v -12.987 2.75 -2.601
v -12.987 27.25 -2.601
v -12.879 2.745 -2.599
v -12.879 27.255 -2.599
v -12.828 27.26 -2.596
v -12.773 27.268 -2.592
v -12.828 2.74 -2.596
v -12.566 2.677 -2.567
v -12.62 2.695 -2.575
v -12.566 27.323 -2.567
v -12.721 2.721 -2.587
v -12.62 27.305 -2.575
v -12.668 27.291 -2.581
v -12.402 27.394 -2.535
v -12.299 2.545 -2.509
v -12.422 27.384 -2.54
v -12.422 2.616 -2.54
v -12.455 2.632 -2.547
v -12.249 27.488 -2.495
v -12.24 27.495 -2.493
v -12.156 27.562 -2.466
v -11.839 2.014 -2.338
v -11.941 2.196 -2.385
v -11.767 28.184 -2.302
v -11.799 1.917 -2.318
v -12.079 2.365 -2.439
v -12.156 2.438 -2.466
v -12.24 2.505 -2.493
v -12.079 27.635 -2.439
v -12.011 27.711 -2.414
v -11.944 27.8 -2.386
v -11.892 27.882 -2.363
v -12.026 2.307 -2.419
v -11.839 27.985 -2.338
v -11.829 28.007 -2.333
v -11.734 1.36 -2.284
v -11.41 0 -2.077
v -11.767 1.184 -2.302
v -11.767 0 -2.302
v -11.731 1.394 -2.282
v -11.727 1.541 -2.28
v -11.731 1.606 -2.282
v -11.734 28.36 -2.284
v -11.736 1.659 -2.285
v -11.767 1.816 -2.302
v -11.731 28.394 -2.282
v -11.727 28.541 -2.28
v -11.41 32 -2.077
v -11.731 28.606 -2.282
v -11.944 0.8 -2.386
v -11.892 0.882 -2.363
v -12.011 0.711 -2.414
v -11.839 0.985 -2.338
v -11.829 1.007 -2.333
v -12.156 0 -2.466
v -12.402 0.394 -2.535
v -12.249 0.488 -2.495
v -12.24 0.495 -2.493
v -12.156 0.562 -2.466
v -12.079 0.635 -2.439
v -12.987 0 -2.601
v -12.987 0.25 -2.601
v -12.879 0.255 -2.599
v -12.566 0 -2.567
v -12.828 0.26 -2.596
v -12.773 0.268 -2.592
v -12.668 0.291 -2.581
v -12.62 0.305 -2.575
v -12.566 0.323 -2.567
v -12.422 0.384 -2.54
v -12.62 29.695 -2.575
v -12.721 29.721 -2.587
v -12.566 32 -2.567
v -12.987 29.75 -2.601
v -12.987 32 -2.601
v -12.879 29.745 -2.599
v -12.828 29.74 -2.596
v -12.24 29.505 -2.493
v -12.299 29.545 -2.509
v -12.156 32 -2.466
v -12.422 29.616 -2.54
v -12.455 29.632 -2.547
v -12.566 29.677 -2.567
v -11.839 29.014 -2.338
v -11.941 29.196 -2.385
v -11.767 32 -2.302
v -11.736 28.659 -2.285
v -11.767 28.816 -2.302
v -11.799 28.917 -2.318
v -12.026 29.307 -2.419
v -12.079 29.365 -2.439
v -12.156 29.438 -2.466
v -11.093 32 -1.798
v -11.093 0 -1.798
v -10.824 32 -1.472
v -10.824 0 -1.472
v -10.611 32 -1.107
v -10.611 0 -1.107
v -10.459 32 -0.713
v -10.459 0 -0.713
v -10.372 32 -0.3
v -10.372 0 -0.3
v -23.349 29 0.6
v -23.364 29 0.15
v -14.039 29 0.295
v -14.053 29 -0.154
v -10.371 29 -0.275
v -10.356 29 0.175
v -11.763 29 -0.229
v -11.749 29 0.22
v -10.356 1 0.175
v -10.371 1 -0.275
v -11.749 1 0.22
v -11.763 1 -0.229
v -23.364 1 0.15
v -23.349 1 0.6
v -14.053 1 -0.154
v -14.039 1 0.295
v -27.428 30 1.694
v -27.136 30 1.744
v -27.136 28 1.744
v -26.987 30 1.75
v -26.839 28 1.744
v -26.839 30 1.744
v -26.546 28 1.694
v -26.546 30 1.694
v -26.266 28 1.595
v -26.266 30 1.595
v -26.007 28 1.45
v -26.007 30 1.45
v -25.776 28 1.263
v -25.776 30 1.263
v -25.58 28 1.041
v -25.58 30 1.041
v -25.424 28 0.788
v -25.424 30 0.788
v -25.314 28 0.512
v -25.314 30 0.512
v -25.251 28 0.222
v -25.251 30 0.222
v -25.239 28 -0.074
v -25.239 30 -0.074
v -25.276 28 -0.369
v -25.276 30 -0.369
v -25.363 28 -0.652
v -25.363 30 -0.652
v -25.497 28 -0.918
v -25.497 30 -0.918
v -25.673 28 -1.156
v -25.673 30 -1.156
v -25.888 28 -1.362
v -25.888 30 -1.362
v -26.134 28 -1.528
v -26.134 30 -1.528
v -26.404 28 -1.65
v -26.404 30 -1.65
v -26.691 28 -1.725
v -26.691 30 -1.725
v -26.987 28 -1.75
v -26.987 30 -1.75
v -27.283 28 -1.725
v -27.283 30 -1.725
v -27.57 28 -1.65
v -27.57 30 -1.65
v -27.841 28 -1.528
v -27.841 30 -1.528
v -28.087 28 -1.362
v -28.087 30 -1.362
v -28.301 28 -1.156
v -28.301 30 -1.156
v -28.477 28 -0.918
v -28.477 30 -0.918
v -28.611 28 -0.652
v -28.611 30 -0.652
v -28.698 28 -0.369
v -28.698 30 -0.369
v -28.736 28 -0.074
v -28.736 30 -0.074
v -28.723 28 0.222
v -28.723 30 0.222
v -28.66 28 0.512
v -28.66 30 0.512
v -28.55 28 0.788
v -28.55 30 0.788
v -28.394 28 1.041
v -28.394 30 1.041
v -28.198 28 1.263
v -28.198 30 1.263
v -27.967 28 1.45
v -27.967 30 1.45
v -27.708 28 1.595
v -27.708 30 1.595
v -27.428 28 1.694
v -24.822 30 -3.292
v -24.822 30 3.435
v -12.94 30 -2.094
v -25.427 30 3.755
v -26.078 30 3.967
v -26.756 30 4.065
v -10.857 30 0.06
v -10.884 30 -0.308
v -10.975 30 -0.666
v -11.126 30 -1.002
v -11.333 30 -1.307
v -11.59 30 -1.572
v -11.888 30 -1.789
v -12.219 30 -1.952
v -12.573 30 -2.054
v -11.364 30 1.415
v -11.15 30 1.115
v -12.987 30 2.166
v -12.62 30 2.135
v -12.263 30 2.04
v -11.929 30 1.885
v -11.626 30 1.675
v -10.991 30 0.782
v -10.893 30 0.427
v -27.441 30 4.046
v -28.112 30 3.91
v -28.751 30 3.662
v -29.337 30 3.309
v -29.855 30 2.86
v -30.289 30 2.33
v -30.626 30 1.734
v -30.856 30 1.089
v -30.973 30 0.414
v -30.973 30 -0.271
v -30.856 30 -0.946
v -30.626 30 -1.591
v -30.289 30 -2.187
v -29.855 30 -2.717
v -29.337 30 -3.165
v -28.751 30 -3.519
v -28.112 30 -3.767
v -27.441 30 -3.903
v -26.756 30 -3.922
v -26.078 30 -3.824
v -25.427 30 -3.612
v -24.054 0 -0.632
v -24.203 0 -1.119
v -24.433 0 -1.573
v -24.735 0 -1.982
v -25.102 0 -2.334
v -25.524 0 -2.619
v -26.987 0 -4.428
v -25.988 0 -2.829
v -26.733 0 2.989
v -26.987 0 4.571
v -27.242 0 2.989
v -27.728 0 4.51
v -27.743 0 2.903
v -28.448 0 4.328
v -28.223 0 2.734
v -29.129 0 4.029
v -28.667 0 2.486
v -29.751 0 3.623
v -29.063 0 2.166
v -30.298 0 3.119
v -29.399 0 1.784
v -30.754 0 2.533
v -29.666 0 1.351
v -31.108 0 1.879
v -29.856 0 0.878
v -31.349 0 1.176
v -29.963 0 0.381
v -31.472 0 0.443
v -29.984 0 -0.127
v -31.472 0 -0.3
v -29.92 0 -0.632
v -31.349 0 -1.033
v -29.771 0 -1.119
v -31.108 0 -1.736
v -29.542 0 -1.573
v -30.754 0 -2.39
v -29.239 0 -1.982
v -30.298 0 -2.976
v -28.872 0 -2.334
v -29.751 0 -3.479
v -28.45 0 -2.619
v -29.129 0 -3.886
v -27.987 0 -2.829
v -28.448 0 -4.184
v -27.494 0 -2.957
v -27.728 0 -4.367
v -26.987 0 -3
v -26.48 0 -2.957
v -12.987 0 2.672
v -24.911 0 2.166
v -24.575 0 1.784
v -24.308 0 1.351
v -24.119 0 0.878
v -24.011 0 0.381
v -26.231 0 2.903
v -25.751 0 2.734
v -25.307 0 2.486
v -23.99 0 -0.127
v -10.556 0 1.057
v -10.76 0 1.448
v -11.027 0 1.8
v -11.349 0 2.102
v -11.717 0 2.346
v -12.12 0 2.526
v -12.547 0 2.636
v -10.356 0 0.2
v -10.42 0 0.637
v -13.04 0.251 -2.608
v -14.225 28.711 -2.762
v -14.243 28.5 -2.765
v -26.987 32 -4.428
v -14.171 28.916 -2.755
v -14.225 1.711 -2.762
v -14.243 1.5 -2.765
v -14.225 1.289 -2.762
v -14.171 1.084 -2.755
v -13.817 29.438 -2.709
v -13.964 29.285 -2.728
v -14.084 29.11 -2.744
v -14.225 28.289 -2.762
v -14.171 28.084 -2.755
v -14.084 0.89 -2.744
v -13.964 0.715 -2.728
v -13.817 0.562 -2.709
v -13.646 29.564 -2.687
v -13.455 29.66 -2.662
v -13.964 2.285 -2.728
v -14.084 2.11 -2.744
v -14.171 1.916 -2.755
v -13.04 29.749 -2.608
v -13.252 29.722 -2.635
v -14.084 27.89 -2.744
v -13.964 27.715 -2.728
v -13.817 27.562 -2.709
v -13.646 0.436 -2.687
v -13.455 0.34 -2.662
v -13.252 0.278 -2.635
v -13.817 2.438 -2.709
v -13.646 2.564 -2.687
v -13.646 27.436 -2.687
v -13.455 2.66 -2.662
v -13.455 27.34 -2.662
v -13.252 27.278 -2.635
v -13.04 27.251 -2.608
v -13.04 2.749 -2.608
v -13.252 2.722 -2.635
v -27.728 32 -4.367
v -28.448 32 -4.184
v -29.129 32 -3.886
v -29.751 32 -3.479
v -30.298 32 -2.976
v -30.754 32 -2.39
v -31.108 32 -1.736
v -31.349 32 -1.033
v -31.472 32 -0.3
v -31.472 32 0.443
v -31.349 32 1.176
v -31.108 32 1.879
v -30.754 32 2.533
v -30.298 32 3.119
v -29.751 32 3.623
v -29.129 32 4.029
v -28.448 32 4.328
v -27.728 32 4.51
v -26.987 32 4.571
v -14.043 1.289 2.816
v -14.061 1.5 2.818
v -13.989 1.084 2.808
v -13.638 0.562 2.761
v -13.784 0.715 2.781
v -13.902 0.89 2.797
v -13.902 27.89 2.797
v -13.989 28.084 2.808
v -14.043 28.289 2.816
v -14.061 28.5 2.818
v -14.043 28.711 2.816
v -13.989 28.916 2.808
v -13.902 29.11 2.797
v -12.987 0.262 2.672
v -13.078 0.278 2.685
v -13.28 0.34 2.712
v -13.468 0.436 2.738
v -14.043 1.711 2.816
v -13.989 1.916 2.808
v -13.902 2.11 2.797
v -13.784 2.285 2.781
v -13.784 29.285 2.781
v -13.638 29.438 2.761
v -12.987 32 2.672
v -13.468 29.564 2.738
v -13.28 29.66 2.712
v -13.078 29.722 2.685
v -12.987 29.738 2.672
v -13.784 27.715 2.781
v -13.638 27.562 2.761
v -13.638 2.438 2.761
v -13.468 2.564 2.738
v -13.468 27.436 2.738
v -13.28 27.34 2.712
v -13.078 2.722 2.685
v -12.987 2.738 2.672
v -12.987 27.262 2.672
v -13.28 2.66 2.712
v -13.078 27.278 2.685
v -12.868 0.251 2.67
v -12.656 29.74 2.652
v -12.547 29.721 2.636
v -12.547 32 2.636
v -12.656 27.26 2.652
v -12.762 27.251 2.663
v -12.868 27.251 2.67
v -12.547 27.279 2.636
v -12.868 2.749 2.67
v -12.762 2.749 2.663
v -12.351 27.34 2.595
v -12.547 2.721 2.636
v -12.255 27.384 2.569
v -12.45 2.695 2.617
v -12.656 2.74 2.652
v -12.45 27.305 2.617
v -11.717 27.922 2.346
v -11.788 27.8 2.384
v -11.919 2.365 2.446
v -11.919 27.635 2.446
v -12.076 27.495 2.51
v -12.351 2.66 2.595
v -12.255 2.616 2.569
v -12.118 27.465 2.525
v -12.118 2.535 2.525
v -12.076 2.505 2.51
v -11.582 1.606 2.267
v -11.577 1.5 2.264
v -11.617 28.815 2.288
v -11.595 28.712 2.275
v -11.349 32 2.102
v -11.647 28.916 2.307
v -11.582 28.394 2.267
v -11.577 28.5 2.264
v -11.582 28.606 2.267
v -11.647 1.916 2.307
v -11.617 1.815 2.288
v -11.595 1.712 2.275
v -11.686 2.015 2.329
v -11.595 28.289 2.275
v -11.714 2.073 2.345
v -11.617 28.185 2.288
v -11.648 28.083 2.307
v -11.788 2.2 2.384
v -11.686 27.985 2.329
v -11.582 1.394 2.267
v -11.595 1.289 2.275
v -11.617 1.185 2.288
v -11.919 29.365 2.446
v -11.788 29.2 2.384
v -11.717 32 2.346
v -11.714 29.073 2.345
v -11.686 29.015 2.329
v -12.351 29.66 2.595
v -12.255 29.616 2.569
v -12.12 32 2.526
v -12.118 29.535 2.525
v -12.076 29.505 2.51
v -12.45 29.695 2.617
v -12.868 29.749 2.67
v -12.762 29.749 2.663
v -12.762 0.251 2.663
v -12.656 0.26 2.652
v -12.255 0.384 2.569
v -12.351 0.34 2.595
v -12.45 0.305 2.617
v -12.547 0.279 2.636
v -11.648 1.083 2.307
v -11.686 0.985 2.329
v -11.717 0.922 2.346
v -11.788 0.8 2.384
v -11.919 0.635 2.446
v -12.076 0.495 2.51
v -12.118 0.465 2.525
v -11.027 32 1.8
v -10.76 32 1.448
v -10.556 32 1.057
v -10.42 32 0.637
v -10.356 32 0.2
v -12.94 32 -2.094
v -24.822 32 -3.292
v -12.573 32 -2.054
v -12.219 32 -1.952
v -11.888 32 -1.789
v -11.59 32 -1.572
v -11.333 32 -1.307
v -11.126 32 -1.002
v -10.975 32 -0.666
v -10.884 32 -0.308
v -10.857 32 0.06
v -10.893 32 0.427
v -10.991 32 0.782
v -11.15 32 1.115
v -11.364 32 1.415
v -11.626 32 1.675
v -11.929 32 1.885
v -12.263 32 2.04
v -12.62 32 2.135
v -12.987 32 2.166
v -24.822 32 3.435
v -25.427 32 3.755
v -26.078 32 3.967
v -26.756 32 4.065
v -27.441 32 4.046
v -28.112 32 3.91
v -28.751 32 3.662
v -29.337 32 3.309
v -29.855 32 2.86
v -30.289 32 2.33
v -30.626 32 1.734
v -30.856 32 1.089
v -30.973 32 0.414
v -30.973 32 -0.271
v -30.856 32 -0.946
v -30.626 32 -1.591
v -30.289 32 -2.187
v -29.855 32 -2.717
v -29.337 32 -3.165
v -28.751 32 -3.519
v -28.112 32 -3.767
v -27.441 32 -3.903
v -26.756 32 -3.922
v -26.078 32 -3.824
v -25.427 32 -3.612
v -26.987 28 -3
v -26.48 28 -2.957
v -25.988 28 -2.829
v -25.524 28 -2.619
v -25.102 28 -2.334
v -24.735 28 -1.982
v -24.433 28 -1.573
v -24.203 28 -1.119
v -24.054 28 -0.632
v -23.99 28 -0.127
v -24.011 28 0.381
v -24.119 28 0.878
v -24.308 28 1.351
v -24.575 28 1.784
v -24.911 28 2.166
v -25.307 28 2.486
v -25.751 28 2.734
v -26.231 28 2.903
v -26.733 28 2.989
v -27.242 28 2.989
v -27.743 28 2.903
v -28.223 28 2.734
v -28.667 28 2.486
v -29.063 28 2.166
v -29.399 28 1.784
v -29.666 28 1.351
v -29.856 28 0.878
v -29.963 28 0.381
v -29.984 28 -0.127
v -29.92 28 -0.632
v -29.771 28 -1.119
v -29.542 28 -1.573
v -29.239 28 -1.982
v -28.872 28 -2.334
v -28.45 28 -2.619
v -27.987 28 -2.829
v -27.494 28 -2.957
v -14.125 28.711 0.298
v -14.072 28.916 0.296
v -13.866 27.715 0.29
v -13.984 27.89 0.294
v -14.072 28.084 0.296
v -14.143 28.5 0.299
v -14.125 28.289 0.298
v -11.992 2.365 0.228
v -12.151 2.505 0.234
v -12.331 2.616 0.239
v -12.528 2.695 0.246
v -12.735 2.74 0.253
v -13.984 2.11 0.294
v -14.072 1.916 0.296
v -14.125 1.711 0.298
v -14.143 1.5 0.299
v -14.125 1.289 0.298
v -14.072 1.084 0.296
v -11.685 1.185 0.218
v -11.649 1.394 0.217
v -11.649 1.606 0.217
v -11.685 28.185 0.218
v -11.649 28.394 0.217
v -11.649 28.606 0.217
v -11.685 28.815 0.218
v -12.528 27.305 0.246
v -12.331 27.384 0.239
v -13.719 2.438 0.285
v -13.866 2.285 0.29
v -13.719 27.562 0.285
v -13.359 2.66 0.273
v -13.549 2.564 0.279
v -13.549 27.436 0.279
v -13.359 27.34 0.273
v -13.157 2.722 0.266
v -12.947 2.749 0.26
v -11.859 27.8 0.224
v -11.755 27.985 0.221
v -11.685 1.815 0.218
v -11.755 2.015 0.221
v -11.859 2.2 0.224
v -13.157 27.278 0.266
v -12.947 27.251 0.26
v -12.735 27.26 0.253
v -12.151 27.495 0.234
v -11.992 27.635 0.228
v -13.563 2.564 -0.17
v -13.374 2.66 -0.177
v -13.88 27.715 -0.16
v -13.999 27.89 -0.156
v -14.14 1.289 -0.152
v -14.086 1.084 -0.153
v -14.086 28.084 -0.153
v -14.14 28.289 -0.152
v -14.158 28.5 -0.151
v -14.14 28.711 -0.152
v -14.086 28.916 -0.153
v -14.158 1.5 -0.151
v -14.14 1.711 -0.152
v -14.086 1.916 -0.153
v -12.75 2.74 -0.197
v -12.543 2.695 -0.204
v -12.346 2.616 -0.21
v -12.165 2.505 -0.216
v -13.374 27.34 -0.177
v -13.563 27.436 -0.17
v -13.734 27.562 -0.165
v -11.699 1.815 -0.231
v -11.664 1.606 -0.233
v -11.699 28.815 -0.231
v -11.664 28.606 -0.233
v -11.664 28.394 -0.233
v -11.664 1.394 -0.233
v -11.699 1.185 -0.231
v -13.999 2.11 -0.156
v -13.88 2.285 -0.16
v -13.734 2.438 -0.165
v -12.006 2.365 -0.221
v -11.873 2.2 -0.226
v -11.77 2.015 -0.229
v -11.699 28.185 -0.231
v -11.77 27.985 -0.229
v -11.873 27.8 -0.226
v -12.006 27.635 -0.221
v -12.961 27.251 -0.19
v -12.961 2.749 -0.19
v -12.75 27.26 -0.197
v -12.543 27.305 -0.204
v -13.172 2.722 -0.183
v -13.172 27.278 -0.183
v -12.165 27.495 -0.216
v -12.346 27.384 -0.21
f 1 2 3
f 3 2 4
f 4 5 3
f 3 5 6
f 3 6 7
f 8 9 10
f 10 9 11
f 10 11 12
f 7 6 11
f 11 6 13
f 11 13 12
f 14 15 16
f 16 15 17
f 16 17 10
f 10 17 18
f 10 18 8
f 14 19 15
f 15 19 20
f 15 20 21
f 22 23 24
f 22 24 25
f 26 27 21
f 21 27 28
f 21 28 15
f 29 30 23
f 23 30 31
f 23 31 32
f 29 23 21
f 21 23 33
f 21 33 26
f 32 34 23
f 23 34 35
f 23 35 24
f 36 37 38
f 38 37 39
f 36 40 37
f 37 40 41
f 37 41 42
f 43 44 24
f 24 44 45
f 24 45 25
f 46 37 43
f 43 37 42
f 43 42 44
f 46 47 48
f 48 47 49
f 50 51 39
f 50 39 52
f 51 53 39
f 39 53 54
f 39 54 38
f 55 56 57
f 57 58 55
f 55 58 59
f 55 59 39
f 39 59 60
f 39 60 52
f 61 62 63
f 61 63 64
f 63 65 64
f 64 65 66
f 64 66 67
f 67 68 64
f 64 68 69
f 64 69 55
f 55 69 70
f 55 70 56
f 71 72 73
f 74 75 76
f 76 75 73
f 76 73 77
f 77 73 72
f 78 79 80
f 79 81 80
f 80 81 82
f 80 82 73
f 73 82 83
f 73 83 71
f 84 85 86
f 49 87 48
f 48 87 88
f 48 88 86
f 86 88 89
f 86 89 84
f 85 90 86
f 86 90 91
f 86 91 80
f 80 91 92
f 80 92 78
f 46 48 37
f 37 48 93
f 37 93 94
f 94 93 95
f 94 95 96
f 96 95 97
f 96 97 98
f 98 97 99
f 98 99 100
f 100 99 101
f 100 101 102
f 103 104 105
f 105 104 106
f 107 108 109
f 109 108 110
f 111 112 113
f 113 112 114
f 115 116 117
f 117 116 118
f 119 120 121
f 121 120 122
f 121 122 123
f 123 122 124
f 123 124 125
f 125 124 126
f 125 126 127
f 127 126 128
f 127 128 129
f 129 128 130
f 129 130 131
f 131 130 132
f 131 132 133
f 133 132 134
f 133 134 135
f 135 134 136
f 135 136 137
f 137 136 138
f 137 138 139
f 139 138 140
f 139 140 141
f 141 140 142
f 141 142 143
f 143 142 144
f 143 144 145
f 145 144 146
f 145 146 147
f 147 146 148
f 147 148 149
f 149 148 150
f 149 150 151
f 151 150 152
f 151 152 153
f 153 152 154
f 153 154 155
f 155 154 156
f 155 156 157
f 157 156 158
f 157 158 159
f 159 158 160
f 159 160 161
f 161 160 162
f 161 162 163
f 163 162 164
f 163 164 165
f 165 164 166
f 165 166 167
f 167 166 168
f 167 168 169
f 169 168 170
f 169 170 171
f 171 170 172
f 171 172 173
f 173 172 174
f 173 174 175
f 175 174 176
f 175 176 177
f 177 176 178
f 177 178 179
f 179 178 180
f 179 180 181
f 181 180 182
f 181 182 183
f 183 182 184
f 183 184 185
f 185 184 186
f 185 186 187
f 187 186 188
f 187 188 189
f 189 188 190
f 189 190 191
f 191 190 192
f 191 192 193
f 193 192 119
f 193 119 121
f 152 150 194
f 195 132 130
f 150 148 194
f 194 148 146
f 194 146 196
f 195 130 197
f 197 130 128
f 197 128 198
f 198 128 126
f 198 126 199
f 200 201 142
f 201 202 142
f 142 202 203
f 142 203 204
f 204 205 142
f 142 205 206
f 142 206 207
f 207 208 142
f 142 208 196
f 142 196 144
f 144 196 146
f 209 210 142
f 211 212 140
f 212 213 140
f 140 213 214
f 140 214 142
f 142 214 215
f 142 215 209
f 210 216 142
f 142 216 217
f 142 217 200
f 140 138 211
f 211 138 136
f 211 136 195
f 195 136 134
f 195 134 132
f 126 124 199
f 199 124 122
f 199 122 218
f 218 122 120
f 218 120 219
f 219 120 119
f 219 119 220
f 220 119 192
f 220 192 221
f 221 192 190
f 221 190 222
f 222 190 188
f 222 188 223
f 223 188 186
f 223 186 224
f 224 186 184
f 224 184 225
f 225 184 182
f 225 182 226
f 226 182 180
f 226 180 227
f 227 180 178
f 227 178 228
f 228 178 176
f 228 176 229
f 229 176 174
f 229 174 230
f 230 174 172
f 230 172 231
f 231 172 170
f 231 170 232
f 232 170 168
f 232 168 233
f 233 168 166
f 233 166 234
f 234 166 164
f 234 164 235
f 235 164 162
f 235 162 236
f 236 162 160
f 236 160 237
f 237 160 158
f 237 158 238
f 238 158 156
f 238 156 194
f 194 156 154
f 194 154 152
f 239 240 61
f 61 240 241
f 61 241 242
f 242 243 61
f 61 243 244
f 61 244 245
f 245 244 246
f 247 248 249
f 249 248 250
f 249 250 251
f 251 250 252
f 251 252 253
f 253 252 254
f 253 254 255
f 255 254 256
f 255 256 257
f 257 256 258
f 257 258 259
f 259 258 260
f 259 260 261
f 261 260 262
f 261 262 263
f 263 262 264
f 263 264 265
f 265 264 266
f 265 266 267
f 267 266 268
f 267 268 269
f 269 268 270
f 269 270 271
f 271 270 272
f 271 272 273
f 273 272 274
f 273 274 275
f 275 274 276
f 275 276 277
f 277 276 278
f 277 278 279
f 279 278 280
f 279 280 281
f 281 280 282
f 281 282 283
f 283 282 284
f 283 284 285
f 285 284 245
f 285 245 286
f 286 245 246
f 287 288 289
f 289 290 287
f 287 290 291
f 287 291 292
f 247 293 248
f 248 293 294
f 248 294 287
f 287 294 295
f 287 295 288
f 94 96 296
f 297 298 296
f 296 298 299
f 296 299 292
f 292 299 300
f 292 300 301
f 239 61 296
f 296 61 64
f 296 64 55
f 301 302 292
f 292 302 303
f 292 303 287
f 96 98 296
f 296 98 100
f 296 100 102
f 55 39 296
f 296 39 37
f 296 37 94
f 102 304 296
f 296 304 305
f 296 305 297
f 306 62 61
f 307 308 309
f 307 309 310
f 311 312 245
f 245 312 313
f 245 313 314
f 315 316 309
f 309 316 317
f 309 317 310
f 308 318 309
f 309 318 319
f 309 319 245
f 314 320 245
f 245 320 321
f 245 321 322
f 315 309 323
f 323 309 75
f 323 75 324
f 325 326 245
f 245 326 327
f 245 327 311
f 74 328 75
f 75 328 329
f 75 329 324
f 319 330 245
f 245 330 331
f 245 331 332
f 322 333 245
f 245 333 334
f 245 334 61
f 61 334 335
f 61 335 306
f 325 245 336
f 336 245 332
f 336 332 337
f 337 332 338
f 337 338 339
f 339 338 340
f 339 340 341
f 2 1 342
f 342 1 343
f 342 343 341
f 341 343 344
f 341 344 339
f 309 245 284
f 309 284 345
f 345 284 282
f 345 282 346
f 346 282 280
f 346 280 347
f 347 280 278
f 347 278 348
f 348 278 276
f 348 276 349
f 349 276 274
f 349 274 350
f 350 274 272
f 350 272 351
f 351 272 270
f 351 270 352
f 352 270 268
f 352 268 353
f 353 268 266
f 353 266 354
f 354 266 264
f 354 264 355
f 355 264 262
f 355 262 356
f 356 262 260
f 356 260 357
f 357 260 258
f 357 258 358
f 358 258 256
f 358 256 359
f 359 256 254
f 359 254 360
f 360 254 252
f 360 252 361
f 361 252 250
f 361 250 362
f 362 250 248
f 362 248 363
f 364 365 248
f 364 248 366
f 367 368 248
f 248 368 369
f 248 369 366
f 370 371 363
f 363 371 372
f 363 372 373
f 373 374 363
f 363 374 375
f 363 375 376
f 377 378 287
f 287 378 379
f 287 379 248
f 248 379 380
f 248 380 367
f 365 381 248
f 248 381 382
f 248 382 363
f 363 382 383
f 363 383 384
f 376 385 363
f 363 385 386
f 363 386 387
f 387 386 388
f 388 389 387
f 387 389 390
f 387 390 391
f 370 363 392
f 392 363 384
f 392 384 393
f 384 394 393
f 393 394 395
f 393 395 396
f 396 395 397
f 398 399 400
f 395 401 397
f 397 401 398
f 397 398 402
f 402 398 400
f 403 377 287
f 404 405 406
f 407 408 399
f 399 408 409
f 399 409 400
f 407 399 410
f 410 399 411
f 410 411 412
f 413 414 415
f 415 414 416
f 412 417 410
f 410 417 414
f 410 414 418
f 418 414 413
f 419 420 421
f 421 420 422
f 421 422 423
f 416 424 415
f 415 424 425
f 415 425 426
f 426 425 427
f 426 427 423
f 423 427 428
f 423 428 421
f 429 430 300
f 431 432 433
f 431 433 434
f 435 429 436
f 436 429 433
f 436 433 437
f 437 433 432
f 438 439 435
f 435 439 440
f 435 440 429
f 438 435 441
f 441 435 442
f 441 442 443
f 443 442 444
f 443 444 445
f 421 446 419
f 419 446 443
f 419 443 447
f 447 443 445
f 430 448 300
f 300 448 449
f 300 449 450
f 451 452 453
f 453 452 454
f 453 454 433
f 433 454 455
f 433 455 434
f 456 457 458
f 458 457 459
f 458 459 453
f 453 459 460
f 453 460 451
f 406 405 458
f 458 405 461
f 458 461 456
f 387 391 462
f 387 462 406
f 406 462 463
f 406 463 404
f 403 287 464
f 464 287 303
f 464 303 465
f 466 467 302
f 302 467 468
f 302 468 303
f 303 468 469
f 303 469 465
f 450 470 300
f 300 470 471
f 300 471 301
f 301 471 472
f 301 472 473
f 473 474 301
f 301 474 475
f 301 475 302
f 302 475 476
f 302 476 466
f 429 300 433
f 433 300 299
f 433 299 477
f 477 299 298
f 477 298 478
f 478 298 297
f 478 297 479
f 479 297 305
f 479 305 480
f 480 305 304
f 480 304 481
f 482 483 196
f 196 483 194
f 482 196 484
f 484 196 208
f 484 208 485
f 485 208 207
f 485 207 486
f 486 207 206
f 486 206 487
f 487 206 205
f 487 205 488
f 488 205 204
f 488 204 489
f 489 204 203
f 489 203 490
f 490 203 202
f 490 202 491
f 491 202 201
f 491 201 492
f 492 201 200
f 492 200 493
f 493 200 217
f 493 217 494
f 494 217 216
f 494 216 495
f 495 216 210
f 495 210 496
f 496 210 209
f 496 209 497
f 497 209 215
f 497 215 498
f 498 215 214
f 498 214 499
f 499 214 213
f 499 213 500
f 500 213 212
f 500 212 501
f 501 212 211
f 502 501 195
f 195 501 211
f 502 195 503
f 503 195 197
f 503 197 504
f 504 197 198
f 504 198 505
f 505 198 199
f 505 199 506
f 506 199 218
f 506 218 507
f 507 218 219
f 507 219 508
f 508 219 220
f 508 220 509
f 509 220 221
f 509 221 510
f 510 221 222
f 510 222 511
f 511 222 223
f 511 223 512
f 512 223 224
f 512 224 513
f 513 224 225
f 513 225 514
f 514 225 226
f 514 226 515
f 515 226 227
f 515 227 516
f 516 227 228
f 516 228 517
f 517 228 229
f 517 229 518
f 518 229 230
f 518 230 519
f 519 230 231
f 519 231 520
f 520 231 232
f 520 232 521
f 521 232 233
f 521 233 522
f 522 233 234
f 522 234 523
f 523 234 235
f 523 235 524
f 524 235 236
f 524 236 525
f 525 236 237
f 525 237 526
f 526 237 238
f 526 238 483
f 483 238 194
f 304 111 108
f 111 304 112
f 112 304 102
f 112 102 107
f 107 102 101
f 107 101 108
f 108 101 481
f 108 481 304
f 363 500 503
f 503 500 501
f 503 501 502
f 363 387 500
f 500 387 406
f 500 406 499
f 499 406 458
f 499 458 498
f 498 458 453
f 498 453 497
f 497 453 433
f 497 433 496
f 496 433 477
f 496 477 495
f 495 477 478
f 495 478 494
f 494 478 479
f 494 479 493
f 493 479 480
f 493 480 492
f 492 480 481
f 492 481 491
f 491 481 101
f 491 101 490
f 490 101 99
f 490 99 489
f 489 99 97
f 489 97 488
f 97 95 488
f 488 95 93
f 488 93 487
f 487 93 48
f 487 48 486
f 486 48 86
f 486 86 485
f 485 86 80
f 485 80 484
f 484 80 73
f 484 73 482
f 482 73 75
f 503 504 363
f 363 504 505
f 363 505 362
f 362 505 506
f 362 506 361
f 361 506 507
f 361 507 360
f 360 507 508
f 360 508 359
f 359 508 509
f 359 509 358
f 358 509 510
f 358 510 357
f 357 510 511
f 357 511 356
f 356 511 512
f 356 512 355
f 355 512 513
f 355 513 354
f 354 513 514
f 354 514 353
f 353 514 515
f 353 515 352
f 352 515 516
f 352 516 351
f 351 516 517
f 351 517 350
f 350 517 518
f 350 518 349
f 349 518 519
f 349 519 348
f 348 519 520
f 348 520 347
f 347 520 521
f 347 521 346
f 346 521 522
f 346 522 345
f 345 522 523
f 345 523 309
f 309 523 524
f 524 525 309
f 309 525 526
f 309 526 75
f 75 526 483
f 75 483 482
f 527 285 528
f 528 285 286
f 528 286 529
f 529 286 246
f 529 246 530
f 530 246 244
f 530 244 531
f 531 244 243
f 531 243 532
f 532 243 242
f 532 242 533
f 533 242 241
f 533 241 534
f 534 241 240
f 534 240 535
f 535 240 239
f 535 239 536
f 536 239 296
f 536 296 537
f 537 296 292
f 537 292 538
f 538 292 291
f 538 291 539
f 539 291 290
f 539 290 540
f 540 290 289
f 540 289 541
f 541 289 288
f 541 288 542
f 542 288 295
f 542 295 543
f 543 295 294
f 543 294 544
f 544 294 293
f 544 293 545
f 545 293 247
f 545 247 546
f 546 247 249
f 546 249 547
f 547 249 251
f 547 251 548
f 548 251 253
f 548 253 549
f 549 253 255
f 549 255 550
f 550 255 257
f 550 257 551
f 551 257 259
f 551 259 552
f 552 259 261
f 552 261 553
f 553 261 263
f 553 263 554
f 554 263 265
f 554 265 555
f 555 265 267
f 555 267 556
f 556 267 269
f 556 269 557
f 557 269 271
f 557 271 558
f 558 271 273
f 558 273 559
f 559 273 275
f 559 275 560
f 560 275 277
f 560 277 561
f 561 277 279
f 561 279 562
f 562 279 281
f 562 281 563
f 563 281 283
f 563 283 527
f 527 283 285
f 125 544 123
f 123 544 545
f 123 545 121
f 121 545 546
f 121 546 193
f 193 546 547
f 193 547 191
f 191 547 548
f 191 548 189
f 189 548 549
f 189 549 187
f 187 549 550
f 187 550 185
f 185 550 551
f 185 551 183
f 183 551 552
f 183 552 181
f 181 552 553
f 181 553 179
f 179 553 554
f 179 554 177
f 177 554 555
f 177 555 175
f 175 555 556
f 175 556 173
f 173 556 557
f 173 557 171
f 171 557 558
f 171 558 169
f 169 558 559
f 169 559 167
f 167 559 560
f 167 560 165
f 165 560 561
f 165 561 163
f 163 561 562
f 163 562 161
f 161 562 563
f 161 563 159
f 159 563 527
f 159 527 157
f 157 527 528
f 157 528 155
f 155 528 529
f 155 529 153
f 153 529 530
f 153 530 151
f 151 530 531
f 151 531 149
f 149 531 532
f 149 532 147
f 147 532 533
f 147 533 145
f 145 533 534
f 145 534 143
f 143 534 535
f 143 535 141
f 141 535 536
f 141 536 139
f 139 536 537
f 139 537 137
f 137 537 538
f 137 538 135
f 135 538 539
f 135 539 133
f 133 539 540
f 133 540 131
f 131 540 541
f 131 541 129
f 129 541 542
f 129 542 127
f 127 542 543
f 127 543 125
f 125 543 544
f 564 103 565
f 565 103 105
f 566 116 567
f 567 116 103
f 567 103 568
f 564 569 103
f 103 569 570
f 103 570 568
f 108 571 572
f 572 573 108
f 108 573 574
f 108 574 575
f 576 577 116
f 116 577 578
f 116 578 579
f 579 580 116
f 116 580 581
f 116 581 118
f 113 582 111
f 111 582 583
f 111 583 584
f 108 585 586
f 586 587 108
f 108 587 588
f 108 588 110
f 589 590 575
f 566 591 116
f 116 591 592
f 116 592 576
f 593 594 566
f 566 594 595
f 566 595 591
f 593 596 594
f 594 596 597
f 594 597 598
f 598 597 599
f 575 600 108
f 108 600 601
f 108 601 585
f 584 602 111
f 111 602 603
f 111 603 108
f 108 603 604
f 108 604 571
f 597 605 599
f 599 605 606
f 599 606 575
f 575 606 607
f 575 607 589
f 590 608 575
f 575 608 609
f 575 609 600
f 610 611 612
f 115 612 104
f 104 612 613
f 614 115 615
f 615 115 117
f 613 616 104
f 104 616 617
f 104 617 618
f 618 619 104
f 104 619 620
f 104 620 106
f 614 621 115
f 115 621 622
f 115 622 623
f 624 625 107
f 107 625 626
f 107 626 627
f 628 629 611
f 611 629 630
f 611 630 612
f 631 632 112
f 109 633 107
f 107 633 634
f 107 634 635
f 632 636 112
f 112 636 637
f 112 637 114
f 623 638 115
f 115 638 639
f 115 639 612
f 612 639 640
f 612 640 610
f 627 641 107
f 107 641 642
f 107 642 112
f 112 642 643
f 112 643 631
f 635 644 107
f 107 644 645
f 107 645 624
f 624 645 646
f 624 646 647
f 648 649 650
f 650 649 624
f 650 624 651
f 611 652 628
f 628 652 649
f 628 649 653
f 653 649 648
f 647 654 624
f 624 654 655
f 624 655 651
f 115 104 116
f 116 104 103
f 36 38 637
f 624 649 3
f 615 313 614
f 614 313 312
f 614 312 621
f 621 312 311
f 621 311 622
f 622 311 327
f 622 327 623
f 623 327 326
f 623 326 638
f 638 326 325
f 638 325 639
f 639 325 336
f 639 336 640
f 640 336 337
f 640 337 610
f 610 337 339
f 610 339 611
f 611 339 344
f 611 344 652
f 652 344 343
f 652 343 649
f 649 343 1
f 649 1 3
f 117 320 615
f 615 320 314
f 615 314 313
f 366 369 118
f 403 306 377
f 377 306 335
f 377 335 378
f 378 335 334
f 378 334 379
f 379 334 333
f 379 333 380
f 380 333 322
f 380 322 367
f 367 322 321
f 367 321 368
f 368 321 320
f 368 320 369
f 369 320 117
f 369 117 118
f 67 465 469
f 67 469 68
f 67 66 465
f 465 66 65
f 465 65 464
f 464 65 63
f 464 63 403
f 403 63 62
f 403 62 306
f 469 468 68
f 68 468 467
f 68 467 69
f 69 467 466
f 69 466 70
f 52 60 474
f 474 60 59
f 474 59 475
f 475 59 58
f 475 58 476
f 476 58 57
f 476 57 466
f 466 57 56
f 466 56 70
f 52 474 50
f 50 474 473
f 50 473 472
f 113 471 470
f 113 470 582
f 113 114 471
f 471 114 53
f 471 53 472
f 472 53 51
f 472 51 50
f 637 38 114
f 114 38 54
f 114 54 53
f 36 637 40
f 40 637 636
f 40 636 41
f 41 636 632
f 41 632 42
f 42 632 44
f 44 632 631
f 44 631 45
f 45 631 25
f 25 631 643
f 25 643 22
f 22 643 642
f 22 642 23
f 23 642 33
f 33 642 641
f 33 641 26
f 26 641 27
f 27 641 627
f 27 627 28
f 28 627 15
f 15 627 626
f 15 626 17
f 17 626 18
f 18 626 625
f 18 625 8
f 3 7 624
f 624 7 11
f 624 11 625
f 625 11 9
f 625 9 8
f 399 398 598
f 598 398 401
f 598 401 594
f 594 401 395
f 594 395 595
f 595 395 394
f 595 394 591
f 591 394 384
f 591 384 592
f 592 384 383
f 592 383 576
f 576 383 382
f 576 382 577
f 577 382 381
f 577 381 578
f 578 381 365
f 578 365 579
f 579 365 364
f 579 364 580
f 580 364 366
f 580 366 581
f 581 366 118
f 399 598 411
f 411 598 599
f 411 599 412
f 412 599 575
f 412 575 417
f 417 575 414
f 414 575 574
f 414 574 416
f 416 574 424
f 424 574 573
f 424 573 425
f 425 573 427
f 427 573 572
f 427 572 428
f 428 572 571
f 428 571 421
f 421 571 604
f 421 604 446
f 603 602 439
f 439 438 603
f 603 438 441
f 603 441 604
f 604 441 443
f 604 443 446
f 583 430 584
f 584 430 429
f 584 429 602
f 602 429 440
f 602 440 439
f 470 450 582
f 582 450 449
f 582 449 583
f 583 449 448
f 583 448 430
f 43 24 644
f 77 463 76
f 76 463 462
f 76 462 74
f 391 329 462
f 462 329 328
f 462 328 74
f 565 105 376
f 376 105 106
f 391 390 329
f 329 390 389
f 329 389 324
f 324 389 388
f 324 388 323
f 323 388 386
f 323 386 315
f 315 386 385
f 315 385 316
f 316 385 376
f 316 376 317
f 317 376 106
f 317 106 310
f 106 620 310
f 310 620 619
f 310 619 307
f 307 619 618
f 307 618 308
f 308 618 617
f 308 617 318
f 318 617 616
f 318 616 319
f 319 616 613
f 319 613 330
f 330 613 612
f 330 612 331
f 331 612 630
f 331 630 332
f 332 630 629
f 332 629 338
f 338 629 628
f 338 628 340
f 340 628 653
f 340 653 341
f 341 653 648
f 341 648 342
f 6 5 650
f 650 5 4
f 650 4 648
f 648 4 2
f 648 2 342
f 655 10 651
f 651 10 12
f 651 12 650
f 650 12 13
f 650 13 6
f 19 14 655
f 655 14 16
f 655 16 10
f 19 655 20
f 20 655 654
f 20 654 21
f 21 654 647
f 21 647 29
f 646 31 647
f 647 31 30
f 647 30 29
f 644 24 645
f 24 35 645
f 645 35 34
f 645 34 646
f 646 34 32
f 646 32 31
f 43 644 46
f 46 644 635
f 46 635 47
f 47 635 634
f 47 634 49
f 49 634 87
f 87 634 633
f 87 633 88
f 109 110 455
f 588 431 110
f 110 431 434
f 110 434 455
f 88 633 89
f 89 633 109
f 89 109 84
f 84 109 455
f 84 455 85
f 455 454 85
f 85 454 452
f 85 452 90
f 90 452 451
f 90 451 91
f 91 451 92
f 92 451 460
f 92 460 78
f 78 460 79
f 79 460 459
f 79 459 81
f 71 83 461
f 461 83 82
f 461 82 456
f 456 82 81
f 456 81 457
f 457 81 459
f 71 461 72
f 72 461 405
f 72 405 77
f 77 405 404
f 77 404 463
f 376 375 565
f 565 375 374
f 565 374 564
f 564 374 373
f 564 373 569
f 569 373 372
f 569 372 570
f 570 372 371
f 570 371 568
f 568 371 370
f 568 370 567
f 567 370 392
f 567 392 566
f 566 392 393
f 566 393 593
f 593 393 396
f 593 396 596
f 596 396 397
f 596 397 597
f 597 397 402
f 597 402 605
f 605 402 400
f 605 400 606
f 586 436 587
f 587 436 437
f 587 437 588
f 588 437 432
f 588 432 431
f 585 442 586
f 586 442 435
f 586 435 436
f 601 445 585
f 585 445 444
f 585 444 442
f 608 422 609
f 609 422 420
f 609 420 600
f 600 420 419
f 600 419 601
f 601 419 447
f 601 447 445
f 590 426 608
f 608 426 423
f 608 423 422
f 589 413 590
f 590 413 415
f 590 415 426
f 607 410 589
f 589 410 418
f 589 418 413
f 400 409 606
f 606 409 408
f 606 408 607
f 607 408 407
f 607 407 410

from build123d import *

# Parameters (mm, degrees)
SKETCH2_R           = 1.75
BOSS_EXTRUDE1_DEPTH = 30
BOSS_EXTRUDE2_DEPTH = 32
SKETCH6_R           = 3
CUT_EXTRUDE3_DEPTH  = 28
SKETCH7_W           = 0.45
SKETCH7_H           = 28
CUT_EXTRUDE4_DEPTH  = 13
SKETCH8_R           = 1.25
CUT_EXTRUDE5_DEPTH  = 46.13881934
SKETCH8_3_R         = 1.25
CUT_EXTRUDE6_DEPTH  = 46.138819411


with BuildPart() as part:
    # Sketch2 → Boss-Extrude1 (new body)
    with BuildSketch(Plane(origin=(0, 0, 0), x_dir=(1, 0, 0), z_dir=(0, 1, 0))):
        with BuildLine():
            Line((-24.821747911, -3.435069212), (-12.987160246, -2.166440487))
            ThreePointArc((-12.987160246, -2.166440487), (-10.8566751, -0.059524017), (-12.939762178, 2.094266176))
            Line((-12.939762178, 2.094266176), (-24.821781773, 3.29179515))
            ThreePointArc((-24.821781773, 3.29179515), (-30.987291256, -0.071668068), (-24.821747911, -3.435069212))
        make_face()
        with Locations((-26.987114413, 0)):
            Circle(SKETCH2_R, mode=Mode.SUBTRACT)
    extrude(amount=BOSS_EXTRUDE1_DEPTH)

    # Sketch2<3> → Boss-Extrude2 (add)
    with BuildSketch(Plane(origin=(0, 0, 0), x_dir=(1, 0, 0), z_dir=(0, 1, 0))):
        with BuildLine():
            ThreePointArc((-26.987114411, 4.428185187), (-31.48694753, -0.071647931), (-26.987114411, -4.57148105))
            Line((-26.987114411, -4.57148105), (-12.987160246, -2.67247066))
            ThreePointArc((-12.987160246, -2.67247066), (-11.181747177, -1.957383249), (-10.355629468, -0.2))
            Line((-10.355629468, -0.2), (-10.371987074, 0.3))
            ThreePointArc((-10.371987074, 0.3), (-11.245543176, 1.943741621), (-12.987160246, 2.600823626))
            Line((-12.987160246, 2.600823626), (-26.987114411, 4.428185187))
        make_face()
        with BuildLine():
            Line((-24.821781773, 3.29179515), (-12.939762178, 2.094266176))
            ThreePointArc((-12.939762178, 2.094266176), (-10.8566751, -0.059524017), (-12.987160246, -2.166440487))
            Line((-12.987160246, -2.166440487), (-24.821747911, -3.435069212))
            ThreePointArc((-24.821747911, -3.435069212), (-30.987291256, -0.071668068), (-24.821781773, 3.29179515))
        make_face(mode=Mode.SUBTRACT)
    extrude(amount=BOSS_EXTRUDE2_DEPTH)

    # Sketch6 → Cut-Extrude3 (cut)
    with BuildSketch(Plane.XZ):
        with Locations((-26.987114413, 0)):
            Circle(SKETCH6_R)
    extrude(amount=-CUT_EXTRUDE3_DEPTH, mode=Mode.SUBTRACT)

    # Sketch7 → Cut-Extrude4 (cut)
    with BuildSketch(Plane(origin=(-10.351093889, 0, 0.338638235), x_dir=(-0.03269771907792212, 0, -0.9994652866243537), z_dir=(0.9994652866243537, 0, -0.03269771907792212))):
        with Locations((0.388846156, 15)):
            Rectangle(SKETCH7_W, SKETCH7_H)
    extrude(amount=-CUT_EXTRUDE4_DEPTH, mode=Mode.SUBTRACT)

    # Sketch8 → Cut-Extrude5 (cut, through all)
    with BuildSketch(Plane(origin=(-0.005357396, 0, -0.163758545), x_dir=(-0.9994652866243537, 0, 0.03269771907792212), z_dir=(-0.03269771907792212, 0, -0.9994652866243537))):
        with Locations((12.895174838, 28.5)):
            Circle(SKETCH8_R)
        with Locations((12.895174838, 1.5)):
            Circle(SKETCH8_R)
    extrude(amount=-CUT_EXTRUDE5_DEPTH, mode=Mode.SUBTRACT)

    # Sketch8<3> → Cut-Extrude6 (cut, through all)
    with BuildSketch(Plane(origin=(-0.005357396, 0, -0.163758545), x_dir=(-0.9994652866243537, 0, 0.03269771907792212), z_dir=(-0.03269771907792212, 0, -0.9994652866243537))):
        with Locations((12.895174838, 28.5)):
            Circle(SKETCH8_3_R)
        with Locations((12.895174838, 1.5)):
            Circle(SKETCH8_3_R)
    extrude(amount=CUT_EXTRUDE6_DEPTH, mode=Mode.SUBTRACT)


solid = part.part
